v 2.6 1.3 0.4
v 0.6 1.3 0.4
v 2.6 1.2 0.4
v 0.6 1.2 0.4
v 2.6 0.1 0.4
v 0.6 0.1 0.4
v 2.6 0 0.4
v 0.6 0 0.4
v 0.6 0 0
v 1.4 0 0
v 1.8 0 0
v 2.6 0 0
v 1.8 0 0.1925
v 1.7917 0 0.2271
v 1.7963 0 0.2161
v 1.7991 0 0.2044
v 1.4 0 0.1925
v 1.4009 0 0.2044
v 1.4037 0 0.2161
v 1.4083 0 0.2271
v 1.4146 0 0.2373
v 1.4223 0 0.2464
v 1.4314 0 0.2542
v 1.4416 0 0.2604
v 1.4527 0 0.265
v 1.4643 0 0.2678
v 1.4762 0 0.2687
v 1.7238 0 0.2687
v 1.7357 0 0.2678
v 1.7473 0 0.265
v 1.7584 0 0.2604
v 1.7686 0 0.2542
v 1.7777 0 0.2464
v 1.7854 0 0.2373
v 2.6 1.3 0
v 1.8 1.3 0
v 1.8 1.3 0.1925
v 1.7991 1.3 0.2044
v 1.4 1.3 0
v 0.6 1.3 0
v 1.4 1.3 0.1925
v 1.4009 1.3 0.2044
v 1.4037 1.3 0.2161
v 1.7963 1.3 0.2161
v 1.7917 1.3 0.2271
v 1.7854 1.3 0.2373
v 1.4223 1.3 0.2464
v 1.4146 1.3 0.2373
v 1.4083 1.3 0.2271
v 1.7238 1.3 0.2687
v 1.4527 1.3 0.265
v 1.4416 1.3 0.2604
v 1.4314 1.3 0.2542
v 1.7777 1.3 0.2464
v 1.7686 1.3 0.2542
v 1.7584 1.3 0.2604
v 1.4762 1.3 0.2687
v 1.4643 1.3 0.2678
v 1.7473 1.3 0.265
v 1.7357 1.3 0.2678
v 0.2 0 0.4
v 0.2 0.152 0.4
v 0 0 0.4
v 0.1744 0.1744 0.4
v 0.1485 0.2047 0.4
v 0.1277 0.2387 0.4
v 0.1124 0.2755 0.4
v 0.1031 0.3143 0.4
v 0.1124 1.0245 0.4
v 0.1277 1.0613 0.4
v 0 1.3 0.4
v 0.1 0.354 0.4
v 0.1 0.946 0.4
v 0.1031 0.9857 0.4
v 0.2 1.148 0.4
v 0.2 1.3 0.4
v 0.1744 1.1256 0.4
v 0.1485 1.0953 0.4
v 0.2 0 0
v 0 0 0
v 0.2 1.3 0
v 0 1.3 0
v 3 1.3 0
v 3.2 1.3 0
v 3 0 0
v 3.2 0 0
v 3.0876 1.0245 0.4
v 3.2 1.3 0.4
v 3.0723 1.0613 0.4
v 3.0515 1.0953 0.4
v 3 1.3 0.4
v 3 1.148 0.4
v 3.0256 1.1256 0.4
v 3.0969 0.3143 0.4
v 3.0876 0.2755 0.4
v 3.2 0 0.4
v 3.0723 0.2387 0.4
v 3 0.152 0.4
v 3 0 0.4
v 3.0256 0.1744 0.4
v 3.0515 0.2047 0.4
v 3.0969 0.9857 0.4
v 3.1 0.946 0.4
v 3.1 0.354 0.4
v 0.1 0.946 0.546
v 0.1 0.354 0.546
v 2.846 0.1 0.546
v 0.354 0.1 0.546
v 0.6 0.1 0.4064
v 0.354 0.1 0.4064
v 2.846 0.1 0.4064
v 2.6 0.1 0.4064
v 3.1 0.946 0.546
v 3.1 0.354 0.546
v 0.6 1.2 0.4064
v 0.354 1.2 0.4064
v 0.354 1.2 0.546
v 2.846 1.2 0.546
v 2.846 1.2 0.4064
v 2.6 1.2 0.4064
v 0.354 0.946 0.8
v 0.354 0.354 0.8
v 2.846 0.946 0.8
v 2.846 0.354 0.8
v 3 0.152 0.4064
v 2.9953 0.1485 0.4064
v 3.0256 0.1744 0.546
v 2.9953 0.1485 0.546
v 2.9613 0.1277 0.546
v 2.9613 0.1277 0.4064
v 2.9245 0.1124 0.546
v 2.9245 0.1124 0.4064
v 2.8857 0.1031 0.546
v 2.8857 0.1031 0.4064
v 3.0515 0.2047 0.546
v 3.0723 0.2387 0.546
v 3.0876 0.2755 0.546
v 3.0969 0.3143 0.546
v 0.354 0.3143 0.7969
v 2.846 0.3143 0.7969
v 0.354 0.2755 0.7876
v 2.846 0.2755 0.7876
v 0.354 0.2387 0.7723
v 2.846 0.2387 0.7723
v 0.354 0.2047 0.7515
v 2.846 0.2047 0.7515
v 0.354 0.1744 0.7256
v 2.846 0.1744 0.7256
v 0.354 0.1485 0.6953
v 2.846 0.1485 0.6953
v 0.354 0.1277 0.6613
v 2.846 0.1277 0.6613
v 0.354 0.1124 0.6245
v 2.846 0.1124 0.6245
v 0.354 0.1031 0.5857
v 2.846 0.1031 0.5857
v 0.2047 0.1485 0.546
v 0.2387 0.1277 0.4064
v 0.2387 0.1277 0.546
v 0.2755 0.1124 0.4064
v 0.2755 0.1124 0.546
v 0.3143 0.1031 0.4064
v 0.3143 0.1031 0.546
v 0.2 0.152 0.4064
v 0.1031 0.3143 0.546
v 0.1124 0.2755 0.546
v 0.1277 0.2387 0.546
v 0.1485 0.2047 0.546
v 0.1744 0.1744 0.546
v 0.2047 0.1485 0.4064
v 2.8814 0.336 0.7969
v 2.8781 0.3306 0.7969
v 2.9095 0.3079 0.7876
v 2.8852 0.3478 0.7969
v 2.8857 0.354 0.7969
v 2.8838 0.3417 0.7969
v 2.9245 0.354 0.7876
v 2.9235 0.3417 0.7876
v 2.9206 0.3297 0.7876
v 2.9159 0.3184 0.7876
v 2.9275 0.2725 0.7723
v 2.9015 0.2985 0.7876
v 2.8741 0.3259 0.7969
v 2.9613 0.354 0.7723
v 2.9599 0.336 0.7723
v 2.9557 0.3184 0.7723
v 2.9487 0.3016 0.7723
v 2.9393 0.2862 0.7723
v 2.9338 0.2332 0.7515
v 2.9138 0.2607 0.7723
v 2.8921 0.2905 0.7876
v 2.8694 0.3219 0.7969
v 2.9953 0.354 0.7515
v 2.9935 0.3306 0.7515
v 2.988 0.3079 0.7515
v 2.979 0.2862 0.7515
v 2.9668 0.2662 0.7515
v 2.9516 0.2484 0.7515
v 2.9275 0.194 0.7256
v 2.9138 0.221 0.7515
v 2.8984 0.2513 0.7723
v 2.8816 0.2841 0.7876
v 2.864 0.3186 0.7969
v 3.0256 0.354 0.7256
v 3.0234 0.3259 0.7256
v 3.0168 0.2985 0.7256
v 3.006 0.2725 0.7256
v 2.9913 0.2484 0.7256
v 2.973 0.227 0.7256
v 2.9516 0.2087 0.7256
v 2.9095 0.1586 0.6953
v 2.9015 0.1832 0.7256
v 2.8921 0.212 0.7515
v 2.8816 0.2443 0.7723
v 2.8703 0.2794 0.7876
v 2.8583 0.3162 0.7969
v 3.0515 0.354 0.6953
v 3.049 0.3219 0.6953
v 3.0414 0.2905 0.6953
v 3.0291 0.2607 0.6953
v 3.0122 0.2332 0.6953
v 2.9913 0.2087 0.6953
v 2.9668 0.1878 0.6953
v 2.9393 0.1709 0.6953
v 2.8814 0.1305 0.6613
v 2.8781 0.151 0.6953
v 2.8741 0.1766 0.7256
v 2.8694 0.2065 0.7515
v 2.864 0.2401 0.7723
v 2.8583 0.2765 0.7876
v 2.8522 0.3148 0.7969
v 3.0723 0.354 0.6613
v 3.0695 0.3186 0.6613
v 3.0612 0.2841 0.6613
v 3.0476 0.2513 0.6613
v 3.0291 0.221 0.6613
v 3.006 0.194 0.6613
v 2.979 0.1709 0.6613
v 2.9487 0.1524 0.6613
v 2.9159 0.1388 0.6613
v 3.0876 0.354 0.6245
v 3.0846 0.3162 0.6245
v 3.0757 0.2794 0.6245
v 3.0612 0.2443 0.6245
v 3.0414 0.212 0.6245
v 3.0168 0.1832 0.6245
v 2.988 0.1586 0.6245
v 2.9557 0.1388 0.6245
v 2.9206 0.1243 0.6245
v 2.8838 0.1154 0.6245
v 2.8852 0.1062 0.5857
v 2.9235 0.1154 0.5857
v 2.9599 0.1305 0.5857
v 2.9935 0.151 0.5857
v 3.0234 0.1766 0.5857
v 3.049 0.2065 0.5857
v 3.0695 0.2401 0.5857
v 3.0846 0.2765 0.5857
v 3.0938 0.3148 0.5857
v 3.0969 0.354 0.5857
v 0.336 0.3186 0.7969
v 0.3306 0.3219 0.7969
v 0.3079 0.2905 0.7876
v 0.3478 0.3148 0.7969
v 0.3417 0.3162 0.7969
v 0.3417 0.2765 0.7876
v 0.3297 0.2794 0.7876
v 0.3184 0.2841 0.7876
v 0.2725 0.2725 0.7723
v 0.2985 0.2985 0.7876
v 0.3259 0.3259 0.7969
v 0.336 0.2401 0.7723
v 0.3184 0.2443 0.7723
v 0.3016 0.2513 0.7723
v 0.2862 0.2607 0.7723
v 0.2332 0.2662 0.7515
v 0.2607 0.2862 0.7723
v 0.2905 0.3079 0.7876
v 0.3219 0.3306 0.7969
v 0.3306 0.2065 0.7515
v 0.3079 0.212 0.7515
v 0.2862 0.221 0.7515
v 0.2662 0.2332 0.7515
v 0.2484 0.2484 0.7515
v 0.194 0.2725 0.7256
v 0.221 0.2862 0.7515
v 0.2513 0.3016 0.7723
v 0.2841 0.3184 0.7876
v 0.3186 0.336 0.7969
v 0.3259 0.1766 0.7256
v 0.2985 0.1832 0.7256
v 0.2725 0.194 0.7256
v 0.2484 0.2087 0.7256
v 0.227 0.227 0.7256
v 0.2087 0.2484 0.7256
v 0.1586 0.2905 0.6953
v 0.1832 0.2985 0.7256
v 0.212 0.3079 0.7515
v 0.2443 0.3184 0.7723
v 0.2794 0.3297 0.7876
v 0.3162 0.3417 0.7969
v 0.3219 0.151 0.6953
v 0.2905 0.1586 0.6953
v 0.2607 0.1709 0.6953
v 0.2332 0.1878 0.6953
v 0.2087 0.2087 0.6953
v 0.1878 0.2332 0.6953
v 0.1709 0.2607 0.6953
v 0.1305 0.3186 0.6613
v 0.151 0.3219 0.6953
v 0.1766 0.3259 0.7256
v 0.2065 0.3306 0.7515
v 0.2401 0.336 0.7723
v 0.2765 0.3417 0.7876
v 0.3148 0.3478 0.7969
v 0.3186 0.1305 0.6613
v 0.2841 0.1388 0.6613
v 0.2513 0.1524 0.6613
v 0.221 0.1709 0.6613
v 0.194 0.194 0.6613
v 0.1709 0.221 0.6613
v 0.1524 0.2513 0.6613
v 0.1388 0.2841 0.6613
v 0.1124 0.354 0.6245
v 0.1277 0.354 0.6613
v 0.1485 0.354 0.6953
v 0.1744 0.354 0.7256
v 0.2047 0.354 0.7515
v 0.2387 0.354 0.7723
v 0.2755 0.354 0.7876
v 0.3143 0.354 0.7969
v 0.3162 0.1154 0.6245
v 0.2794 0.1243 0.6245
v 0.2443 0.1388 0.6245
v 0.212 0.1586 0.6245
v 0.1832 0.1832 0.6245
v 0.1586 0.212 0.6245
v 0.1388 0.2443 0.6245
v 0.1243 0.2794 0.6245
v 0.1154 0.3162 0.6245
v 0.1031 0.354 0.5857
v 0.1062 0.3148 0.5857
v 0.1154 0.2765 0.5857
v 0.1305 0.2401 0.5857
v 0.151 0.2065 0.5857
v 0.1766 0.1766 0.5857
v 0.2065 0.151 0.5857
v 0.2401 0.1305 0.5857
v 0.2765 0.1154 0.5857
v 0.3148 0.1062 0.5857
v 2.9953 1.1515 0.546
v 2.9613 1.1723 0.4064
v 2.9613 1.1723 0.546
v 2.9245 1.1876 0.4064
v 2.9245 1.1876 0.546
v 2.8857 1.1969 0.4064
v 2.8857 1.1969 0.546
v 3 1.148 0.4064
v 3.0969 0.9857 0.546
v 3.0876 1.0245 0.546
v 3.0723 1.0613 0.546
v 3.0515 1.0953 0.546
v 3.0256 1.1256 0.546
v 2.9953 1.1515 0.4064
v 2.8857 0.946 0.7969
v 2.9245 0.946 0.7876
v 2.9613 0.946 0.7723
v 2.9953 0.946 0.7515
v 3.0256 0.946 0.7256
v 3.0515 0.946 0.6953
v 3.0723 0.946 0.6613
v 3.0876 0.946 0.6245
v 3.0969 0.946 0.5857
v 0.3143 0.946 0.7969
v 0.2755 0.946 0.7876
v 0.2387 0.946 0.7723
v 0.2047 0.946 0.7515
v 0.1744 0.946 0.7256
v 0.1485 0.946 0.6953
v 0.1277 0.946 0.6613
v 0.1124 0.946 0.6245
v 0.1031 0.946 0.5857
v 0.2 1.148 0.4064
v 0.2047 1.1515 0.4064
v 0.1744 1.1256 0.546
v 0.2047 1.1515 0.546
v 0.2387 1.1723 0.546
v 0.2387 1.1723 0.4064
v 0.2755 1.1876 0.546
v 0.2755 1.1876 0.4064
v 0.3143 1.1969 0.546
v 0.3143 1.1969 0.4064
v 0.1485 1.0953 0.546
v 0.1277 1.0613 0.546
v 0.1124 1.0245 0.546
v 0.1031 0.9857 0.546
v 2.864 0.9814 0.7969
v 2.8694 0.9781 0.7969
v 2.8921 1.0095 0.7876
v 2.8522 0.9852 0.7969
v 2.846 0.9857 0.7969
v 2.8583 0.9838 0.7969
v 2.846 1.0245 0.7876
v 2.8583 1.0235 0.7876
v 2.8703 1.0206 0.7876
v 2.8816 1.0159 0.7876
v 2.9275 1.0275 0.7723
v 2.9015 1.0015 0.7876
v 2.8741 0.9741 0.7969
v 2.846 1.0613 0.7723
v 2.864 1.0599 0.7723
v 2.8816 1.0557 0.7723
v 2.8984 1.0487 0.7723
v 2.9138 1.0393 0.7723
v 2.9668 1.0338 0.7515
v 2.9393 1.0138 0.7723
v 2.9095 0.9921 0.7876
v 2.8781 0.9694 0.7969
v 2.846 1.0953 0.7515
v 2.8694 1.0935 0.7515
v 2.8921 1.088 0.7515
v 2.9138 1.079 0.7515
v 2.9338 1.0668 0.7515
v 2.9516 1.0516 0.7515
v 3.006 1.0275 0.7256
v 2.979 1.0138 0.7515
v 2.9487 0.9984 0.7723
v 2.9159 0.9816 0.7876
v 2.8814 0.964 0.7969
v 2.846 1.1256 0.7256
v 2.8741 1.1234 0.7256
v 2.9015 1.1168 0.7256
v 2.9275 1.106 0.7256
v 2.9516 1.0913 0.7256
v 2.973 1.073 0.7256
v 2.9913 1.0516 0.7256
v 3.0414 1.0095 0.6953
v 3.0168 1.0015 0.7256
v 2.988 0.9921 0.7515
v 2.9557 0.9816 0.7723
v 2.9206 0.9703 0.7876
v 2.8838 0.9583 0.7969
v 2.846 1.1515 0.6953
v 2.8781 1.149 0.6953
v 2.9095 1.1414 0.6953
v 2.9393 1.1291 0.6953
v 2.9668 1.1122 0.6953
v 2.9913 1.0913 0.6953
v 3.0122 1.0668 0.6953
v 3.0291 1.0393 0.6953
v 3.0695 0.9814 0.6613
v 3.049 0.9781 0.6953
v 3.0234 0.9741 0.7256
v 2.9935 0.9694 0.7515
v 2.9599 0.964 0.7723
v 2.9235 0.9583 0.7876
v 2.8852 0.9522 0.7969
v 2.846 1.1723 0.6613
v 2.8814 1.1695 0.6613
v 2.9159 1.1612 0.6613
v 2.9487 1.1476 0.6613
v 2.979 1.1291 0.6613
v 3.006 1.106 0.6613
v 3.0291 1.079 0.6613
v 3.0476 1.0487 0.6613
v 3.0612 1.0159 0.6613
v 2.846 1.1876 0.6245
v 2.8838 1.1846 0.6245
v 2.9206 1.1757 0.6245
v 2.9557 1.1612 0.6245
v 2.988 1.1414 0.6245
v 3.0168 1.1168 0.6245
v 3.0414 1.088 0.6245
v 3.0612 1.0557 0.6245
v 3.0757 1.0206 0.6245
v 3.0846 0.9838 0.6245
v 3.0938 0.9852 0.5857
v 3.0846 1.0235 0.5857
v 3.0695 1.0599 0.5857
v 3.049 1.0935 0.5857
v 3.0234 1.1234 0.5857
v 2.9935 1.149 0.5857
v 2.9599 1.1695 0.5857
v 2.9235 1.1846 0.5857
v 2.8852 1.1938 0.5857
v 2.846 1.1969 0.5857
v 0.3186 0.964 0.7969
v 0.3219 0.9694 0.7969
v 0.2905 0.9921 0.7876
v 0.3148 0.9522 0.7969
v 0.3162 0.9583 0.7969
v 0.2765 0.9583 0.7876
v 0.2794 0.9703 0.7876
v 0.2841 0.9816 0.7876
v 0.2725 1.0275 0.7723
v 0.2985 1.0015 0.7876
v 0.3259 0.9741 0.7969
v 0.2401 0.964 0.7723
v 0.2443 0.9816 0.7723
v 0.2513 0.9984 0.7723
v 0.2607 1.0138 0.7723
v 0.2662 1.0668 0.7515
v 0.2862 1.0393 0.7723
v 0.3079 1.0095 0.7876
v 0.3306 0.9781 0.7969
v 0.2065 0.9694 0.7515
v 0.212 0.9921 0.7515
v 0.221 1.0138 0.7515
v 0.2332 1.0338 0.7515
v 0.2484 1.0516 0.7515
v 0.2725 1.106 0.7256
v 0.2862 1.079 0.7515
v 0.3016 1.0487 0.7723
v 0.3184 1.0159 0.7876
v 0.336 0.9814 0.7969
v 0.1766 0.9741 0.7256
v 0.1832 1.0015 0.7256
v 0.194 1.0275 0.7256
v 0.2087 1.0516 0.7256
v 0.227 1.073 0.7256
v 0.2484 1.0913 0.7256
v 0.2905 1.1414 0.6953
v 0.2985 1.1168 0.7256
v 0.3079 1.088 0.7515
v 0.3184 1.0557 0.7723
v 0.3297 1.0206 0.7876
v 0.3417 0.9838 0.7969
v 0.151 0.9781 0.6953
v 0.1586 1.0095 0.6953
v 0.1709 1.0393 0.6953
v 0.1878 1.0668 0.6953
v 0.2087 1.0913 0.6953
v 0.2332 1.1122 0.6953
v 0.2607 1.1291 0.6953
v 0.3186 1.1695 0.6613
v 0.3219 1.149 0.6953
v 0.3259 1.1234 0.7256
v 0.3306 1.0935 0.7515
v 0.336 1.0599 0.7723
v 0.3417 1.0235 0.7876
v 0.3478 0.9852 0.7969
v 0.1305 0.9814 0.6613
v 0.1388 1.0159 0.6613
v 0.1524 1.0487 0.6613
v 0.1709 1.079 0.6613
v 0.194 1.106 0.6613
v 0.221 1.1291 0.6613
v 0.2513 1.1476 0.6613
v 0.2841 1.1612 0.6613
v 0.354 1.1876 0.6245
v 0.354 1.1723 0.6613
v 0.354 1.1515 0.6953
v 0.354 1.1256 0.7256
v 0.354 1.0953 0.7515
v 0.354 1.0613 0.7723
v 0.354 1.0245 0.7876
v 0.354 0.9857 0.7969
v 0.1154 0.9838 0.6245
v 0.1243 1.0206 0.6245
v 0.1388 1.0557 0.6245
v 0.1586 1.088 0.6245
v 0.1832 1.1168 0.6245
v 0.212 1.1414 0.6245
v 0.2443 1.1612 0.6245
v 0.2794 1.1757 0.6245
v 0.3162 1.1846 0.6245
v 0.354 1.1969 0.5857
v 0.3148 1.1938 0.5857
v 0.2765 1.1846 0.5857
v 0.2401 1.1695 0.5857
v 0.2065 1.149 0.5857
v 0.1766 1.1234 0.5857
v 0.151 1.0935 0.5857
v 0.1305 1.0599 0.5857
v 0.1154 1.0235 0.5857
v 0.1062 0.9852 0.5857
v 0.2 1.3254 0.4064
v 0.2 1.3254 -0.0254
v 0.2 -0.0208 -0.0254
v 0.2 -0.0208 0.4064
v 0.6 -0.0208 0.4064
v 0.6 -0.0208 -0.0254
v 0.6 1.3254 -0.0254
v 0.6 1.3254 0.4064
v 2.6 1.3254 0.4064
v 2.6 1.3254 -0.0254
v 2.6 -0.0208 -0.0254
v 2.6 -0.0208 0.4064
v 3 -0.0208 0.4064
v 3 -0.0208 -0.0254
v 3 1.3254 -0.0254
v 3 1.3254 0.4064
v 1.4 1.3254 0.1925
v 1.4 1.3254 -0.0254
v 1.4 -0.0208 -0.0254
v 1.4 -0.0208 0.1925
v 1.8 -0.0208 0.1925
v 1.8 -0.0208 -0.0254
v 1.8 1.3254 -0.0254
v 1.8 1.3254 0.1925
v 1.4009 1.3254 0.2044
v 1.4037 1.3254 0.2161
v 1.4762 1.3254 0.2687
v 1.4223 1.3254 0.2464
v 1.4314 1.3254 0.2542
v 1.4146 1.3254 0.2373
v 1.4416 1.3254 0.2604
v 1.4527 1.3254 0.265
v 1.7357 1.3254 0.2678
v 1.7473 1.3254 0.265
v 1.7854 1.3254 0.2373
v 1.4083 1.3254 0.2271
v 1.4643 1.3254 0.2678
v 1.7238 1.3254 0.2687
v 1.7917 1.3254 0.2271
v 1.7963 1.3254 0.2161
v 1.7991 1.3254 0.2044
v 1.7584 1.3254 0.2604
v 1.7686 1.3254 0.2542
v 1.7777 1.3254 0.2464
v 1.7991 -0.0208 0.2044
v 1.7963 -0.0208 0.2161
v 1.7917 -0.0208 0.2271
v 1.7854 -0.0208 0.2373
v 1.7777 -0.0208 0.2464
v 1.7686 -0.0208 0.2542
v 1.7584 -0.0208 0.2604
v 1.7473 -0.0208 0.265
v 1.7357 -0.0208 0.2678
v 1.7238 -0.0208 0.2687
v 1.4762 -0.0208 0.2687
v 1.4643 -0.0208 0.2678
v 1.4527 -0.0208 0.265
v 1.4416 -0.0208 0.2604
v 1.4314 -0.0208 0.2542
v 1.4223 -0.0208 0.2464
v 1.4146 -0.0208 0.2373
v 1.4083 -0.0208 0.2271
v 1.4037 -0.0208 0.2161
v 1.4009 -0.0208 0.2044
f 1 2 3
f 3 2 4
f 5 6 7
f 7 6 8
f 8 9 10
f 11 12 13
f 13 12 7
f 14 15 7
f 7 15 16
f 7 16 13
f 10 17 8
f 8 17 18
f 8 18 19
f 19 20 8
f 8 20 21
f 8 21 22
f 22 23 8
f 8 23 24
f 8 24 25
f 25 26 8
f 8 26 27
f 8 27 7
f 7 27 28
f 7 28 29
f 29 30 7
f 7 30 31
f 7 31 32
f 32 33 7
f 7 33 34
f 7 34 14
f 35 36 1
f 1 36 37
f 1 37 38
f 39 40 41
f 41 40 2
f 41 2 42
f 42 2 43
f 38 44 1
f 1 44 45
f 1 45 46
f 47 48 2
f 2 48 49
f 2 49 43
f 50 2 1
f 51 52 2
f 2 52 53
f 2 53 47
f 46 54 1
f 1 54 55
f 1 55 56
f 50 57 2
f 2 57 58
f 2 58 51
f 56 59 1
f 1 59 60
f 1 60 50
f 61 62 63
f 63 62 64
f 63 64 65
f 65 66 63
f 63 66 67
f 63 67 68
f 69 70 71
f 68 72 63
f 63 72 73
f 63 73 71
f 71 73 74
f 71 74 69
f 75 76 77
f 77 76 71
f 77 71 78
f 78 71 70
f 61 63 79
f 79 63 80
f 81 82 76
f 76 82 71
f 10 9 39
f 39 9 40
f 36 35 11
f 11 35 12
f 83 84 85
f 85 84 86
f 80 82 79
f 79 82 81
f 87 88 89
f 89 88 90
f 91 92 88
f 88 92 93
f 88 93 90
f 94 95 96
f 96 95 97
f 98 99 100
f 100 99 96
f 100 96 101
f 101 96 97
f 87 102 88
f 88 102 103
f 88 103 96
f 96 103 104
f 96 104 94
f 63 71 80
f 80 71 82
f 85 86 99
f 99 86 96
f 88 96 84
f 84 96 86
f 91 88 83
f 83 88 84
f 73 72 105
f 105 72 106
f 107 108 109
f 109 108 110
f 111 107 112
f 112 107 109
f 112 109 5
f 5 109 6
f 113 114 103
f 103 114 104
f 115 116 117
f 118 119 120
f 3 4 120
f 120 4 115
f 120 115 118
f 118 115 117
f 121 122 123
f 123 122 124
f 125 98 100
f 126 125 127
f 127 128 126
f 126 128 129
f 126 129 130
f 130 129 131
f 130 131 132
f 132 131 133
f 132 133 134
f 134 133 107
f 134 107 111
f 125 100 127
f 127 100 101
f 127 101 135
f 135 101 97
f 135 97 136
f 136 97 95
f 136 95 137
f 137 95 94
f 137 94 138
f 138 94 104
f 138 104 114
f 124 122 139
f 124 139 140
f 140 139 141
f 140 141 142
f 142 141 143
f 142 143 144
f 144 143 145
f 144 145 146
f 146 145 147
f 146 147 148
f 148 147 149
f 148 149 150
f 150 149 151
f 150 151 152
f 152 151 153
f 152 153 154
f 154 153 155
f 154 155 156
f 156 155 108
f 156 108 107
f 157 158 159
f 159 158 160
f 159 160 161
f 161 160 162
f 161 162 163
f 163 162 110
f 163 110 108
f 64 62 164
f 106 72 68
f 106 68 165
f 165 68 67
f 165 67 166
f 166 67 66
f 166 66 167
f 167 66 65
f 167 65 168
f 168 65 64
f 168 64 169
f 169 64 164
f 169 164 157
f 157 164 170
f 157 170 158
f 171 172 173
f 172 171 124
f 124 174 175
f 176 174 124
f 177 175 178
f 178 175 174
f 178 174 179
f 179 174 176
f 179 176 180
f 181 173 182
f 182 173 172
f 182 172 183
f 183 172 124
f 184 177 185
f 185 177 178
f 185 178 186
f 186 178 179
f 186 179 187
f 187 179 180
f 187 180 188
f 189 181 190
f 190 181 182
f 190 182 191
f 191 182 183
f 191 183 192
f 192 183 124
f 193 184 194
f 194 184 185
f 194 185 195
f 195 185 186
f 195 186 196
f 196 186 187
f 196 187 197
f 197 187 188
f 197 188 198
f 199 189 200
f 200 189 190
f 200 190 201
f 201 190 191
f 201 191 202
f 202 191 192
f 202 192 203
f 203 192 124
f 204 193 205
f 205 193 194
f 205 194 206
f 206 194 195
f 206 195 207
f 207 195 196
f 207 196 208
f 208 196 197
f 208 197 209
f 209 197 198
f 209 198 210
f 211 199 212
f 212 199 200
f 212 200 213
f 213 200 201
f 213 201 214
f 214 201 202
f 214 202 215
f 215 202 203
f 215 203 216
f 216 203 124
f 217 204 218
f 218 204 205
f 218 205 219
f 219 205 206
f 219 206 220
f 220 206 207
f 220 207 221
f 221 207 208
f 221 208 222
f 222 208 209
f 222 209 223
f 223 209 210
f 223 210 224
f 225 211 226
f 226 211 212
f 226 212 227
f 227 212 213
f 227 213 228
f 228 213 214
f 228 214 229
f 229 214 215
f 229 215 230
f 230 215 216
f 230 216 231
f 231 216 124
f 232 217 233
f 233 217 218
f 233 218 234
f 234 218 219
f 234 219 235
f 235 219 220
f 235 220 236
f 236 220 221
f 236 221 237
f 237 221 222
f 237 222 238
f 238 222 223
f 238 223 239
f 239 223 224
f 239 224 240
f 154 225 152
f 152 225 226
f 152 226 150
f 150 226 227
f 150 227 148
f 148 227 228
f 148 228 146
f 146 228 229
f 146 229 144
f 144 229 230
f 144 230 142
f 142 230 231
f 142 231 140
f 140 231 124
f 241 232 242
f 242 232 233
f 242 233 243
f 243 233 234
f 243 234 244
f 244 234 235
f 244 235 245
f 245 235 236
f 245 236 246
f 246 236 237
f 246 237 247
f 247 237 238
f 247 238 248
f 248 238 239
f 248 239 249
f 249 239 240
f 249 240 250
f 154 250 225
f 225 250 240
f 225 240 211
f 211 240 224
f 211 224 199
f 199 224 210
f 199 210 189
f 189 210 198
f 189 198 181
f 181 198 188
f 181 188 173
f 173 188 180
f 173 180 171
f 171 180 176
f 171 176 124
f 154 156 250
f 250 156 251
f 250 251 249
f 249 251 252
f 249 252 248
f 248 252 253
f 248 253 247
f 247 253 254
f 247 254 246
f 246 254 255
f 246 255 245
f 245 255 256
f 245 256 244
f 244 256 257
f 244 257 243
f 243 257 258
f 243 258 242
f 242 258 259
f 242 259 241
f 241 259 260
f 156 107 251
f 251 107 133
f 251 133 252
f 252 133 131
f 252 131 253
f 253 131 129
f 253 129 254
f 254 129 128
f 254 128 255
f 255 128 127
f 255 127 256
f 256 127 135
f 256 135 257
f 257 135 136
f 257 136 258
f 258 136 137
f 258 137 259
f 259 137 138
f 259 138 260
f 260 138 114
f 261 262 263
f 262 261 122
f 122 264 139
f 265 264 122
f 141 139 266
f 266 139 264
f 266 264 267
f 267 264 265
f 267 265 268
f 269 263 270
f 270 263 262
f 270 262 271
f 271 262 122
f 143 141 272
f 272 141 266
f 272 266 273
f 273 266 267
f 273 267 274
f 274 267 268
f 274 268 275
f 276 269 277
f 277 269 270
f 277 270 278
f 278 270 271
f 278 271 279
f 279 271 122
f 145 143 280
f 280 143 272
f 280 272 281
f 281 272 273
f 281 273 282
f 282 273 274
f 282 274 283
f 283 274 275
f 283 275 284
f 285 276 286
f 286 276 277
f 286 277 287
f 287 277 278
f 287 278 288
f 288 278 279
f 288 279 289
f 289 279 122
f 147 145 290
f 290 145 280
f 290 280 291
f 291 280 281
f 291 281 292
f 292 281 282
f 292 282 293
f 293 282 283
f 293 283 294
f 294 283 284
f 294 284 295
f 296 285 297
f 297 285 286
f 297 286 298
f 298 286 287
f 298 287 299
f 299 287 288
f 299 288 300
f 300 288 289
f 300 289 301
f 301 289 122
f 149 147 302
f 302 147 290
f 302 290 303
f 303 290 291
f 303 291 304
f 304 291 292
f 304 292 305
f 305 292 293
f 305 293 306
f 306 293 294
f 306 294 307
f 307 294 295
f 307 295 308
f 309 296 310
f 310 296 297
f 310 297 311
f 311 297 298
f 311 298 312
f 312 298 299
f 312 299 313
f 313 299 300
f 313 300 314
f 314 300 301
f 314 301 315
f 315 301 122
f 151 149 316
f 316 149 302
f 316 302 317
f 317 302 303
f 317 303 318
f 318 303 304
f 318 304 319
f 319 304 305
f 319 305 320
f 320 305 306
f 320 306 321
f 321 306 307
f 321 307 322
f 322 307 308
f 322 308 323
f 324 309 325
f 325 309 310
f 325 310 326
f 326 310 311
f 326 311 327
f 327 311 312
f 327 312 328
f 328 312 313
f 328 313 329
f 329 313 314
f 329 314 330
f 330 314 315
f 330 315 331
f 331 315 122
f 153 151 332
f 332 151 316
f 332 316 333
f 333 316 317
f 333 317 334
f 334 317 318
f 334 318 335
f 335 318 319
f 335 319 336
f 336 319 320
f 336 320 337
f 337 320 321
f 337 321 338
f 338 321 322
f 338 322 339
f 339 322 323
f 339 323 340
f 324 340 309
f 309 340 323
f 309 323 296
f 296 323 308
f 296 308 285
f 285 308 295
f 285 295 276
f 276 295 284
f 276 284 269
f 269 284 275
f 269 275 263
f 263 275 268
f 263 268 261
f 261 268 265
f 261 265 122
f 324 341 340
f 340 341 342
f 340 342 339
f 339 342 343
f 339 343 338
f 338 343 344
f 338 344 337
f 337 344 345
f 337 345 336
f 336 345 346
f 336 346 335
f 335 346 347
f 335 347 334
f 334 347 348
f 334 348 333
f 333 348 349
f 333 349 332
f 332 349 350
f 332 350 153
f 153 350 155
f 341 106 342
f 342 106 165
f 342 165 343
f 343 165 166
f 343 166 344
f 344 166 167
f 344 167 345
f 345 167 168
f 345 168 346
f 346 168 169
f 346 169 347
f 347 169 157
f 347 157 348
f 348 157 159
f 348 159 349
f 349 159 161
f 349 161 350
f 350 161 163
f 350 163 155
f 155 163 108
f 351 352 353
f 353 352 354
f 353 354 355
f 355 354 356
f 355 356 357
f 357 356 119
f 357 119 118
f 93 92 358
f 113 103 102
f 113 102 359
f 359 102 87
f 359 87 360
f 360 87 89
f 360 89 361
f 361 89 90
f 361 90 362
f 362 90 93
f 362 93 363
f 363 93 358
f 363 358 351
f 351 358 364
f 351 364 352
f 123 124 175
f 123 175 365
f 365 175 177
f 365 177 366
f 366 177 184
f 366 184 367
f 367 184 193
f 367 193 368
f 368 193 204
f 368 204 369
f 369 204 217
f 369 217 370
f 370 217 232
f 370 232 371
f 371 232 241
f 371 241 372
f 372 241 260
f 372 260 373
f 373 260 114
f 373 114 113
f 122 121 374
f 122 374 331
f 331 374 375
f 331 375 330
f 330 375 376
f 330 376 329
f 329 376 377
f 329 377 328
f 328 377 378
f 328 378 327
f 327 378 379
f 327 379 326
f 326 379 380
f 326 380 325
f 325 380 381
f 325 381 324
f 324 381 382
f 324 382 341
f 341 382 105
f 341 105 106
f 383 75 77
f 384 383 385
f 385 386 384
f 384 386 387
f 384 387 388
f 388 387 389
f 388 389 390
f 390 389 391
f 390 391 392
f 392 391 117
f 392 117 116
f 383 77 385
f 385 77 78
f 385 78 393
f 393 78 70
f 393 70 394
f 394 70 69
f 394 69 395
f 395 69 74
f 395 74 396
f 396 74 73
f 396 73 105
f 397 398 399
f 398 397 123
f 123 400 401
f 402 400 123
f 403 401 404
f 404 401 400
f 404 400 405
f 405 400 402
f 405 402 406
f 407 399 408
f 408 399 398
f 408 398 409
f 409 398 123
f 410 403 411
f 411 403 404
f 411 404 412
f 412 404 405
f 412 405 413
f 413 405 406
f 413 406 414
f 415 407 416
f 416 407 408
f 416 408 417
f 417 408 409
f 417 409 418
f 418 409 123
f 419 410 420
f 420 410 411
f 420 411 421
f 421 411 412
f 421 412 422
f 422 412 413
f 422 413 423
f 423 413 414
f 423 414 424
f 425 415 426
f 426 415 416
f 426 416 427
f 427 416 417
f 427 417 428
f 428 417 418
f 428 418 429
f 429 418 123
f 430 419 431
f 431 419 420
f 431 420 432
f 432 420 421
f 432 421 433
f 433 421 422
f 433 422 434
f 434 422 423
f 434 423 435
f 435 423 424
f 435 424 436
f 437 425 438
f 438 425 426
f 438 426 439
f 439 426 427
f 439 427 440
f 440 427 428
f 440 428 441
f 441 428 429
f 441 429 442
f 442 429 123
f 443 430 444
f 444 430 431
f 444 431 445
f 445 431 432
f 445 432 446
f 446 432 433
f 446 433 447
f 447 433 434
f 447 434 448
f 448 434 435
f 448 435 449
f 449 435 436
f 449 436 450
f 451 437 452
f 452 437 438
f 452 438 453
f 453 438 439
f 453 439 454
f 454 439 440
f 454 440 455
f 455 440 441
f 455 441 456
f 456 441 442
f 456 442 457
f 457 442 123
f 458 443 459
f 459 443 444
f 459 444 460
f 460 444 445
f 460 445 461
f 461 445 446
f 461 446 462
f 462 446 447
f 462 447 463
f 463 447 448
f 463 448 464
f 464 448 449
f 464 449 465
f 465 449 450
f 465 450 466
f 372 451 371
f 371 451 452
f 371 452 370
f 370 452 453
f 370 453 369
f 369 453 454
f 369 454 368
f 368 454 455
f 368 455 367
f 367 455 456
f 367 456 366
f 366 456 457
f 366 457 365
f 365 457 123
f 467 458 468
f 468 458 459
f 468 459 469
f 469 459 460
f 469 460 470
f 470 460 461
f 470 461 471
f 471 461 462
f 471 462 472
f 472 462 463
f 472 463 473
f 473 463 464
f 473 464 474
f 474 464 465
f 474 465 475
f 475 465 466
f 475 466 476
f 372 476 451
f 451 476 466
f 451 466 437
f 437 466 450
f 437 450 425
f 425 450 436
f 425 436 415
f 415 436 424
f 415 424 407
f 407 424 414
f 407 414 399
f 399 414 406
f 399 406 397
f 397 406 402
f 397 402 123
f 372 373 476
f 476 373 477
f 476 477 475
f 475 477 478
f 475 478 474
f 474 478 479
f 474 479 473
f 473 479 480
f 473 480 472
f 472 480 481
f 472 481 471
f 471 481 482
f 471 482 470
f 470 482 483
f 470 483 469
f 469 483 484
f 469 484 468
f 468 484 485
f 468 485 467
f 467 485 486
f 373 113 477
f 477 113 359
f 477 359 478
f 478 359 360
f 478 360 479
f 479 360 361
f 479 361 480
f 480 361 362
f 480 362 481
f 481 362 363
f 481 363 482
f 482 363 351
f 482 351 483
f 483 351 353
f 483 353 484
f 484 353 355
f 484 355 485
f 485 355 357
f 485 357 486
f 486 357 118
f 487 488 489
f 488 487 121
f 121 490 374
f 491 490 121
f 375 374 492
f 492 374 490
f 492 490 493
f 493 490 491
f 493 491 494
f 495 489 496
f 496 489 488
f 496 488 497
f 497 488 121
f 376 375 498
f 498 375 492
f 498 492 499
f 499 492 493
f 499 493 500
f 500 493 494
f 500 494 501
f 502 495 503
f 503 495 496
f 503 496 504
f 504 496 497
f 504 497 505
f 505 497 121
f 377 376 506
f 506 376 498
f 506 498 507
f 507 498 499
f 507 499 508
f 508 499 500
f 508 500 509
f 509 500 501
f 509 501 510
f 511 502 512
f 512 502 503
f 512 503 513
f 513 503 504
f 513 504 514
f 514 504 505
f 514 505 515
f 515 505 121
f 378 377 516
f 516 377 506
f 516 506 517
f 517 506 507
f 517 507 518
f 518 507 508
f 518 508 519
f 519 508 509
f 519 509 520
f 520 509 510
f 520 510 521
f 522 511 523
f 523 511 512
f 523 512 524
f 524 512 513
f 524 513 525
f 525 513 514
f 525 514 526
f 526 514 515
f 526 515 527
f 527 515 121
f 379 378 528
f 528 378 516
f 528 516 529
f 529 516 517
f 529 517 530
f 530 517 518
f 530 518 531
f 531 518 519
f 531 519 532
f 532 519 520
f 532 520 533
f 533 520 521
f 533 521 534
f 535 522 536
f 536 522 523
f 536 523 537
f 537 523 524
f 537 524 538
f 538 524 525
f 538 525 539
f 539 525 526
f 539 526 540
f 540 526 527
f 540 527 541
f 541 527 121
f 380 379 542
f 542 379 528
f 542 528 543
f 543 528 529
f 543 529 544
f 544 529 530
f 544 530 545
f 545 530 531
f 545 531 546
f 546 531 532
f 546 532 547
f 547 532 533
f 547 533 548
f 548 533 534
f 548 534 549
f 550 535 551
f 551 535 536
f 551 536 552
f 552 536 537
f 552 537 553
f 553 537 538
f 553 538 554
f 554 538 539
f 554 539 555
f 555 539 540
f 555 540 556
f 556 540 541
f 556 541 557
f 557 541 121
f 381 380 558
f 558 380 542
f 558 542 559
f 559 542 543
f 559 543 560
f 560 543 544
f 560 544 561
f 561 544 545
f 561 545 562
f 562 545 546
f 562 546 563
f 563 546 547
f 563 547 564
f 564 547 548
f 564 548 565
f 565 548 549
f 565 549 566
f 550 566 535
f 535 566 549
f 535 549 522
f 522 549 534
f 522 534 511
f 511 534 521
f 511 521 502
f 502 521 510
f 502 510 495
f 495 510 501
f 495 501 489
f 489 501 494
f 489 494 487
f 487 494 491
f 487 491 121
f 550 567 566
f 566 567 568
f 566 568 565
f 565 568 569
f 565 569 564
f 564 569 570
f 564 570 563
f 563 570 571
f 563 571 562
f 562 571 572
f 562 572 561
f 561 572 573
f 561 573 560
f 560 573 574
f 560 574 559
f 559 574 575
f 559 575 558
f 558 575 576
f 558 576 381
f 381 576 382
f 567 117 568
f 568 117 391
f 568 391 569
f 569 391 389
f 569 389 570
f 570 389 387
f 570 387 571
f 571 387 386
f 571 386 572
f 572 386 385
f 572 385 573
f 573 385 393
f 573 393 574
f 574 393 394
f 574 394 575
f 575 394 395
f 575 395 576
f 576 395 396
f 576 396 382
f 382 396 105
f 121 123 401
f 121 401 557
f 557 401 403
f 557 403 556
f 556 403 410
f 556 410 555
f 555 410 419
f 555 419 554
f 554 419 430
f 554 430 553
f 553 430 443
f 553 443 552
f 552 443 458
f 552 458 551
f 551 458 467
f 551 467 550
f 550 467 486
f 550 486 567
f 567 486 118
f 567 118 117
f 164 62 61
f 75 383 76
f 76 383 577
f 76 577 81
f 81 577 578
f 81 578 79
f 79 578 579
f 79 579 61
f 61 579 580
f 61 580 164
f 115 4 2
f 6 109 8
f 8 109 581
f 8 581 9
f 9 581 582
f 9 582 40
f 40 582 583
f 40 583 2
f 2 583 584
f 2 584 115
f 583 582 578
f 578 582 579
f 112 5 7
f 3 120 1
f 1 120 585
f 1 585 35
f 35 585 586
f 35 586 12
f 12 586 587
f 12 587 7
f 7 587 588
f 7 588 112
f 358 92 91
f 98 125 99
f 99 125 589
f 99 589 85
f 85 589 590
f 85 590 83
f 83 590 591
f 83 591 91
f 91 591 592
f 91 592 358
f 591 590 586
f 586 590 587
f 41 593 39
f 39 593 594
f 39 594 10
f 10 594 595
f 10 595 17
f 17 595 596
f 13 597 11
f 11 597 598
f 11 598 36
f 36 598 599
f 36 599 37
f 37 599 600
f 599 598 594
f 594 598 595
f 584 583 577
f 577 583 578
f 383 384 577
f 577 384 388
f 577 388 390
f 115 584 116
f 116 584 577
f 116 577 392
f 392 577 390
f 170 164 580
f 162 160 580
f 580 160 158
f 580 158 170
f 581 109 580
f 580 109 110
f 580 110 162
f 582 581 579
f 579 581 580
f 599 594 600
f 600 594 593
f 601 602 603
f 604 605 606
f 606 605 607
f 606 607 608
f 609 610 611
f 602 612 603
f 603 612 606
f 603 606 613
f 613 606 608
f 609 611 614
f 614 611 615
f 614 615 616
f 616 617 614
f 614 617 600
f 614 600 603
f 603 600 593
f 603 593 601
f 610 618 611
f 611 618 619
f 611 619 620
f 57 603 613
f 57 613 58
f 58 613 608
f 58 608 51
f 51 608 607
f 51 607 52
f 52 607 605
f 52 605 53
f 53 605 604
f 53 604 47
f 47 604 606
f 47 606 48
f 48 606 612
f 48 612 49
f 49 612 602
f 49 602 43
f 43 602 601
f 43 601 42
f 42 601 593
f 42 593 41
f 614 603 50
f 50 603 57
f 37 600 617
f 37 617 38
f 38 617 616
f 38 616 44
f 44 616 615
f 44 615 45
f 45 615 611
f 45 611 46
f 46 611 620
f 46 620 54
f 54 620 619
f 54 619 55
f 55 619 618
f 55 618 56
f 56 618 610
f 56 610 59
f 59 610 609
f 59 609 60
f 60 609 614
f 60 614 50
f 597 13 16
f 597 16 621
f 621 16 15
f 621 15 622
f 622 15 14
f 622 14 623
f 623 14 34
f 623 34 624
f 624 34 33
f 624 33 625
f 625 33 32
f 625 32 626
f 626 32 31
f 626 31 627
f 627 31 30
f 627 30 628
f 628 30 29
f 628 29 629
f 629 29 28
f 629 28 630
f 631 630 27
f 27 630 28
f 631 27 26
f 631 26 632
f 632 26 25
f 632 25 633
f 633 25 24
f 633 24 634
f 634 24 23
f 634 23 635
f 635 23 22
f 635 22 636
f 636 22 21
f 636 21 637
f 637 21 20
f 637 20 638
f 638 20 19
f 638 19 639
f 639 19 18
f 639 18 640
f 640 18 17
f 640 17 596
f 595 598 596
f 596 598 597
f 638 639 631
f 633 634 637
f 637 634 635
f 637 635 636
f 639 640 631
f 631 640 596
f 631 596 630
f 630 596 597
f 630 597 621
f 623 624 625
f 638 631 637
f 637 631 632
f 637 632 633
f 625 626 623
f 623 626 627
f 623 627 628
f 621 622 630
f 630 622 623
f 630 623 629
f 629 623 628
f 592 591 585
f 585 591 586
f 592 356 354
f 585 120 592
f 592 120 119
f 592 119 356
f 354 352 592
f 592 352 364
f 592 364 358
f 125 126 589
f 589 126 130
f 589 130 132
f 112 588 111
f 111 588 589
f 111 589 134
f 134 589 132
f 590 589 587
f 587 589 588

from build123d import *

# Parameters (mm, degrees)
SKETCH1_W                = 3.2
SKETCH1_H                = 1.3
BOSS_EXTRUDE1_DEPTH      = 0.4
SKETCH2_W                = 3
SKETCH2_H                = 1.1
BOSS_EXTRUDE2_DEPTH      = 0.4
FILLET1_R                = 0.254
SKETCH3_W                = 0.4
SKETCH3_H                = 1.3
BOSS_EXTRUDE3_DEPTH      = 0.0254
SKETCH4_W                = 0.4
SKETCH4_H                = 0.4318
BOSS_EXTRUDE4_DEPTH      = 0.0254
BOSS_EXTRUDE4_DEPTH_BACK = 1.3208


with BuildPart() as part:
    # Sketch1 → Boss-Extrude1 (new body)
    with BuildSketch(Plane.XY):
        with Locations((1.6, 0.65)):
            Rectangle(SKETCH1_W, SKETCH1_H)
    extrude(amount=BOSS_EXTRUDE1_DEPTH)

    # Sketch2 → Boss-Extrude2 (add)
    with BuildSketch(Plane.XY.offset(0.4)):
        with Locations((1.6, 0.65)):
            Rectangle(SKETCH2_W, SKETCH2_H)
    extrude(amount=BOSS_EXTRUDE2_DEPTH)

    # Fillet1
    fillet1_edges = [part.edges().sort_by_distance(p)[0] for p in [
        (0.1, 1.2, 0.6),
        (0.1, 0.1, 0.6),
        (3.1, 0.1, 0.6),
        (3.1, 1.2, 0.6),
        (0.1, 0.65, 0.8),
        (1.6, 0.1, 0.8),
        (3.1, 0.65, 0.8),
        (1.6, 1.2, 0.8),
    ]]
    fillet(fillet1_edges, radius=FILLET1_R)

    # Sketch3 → Boss-Extrude3 (add)
    with BuildSketch(Plane(origin=(0, 0, 0), x_dir=(-1, 0, 0), z_dir=(0, 0, -1))):
        with Locations((-0.4, 0.65)):
            Rectangle(SKETCH3_W, SKETCH3_H)
        with Locations((-2.8, 0.65)):
            Rectangle(SKETCH3_W, SKETCH3_H)
        with Locations((-1.6, 0.65)):
            Rectangle(SKETCH3_W, SKETCH3_H)
    extrude(amount=BOSS_EXTRUDE3_DEPTH)

    # Sketch4 → Boss-Extrude4 (add, two sides)
    with BuildSketch(Plane(origin=(0, 1.3, 0), x_dir=(1, 0, 0), z_dir=(0, 1, 0))) as boss_extrude4_sk:
        with BuildLine():
            Line((1.4, 0.0254), (1.4, -0.192503839))
            ThreePointArc((1.4, -0.192503839), (1.422318463, -0.246385375), (1.4762, -0.268703839))
            Line((1.4762, -0.268703839), (1.7238, -0.268703839))
            ThreePointArc((1.7238, -0.268703839), (1.777681537, -0.246385375), (1.8, -0.192503839))
            Line((1.8, -0.192503839), (1.8, 0.0254))
            Line((1.8, 0.0254), (1.4, 0.0254))
        make_face()
        with Locations((0.4, -0.1905)):
            Rectangle(SKETCH4_W, SKETCH4_H)
        with Locations((2.8, -0.1905)):
            Rectangle(SKETCH4_W, SKETCH4_H)
    extrude(amount=BOSS_EXTRUDE4_DEPTH)
    extrude(boss_extrude4_sk.sketch, amount=-BOSS_EXTRUDE4_DEPTH_BACK)


solid = part.part
